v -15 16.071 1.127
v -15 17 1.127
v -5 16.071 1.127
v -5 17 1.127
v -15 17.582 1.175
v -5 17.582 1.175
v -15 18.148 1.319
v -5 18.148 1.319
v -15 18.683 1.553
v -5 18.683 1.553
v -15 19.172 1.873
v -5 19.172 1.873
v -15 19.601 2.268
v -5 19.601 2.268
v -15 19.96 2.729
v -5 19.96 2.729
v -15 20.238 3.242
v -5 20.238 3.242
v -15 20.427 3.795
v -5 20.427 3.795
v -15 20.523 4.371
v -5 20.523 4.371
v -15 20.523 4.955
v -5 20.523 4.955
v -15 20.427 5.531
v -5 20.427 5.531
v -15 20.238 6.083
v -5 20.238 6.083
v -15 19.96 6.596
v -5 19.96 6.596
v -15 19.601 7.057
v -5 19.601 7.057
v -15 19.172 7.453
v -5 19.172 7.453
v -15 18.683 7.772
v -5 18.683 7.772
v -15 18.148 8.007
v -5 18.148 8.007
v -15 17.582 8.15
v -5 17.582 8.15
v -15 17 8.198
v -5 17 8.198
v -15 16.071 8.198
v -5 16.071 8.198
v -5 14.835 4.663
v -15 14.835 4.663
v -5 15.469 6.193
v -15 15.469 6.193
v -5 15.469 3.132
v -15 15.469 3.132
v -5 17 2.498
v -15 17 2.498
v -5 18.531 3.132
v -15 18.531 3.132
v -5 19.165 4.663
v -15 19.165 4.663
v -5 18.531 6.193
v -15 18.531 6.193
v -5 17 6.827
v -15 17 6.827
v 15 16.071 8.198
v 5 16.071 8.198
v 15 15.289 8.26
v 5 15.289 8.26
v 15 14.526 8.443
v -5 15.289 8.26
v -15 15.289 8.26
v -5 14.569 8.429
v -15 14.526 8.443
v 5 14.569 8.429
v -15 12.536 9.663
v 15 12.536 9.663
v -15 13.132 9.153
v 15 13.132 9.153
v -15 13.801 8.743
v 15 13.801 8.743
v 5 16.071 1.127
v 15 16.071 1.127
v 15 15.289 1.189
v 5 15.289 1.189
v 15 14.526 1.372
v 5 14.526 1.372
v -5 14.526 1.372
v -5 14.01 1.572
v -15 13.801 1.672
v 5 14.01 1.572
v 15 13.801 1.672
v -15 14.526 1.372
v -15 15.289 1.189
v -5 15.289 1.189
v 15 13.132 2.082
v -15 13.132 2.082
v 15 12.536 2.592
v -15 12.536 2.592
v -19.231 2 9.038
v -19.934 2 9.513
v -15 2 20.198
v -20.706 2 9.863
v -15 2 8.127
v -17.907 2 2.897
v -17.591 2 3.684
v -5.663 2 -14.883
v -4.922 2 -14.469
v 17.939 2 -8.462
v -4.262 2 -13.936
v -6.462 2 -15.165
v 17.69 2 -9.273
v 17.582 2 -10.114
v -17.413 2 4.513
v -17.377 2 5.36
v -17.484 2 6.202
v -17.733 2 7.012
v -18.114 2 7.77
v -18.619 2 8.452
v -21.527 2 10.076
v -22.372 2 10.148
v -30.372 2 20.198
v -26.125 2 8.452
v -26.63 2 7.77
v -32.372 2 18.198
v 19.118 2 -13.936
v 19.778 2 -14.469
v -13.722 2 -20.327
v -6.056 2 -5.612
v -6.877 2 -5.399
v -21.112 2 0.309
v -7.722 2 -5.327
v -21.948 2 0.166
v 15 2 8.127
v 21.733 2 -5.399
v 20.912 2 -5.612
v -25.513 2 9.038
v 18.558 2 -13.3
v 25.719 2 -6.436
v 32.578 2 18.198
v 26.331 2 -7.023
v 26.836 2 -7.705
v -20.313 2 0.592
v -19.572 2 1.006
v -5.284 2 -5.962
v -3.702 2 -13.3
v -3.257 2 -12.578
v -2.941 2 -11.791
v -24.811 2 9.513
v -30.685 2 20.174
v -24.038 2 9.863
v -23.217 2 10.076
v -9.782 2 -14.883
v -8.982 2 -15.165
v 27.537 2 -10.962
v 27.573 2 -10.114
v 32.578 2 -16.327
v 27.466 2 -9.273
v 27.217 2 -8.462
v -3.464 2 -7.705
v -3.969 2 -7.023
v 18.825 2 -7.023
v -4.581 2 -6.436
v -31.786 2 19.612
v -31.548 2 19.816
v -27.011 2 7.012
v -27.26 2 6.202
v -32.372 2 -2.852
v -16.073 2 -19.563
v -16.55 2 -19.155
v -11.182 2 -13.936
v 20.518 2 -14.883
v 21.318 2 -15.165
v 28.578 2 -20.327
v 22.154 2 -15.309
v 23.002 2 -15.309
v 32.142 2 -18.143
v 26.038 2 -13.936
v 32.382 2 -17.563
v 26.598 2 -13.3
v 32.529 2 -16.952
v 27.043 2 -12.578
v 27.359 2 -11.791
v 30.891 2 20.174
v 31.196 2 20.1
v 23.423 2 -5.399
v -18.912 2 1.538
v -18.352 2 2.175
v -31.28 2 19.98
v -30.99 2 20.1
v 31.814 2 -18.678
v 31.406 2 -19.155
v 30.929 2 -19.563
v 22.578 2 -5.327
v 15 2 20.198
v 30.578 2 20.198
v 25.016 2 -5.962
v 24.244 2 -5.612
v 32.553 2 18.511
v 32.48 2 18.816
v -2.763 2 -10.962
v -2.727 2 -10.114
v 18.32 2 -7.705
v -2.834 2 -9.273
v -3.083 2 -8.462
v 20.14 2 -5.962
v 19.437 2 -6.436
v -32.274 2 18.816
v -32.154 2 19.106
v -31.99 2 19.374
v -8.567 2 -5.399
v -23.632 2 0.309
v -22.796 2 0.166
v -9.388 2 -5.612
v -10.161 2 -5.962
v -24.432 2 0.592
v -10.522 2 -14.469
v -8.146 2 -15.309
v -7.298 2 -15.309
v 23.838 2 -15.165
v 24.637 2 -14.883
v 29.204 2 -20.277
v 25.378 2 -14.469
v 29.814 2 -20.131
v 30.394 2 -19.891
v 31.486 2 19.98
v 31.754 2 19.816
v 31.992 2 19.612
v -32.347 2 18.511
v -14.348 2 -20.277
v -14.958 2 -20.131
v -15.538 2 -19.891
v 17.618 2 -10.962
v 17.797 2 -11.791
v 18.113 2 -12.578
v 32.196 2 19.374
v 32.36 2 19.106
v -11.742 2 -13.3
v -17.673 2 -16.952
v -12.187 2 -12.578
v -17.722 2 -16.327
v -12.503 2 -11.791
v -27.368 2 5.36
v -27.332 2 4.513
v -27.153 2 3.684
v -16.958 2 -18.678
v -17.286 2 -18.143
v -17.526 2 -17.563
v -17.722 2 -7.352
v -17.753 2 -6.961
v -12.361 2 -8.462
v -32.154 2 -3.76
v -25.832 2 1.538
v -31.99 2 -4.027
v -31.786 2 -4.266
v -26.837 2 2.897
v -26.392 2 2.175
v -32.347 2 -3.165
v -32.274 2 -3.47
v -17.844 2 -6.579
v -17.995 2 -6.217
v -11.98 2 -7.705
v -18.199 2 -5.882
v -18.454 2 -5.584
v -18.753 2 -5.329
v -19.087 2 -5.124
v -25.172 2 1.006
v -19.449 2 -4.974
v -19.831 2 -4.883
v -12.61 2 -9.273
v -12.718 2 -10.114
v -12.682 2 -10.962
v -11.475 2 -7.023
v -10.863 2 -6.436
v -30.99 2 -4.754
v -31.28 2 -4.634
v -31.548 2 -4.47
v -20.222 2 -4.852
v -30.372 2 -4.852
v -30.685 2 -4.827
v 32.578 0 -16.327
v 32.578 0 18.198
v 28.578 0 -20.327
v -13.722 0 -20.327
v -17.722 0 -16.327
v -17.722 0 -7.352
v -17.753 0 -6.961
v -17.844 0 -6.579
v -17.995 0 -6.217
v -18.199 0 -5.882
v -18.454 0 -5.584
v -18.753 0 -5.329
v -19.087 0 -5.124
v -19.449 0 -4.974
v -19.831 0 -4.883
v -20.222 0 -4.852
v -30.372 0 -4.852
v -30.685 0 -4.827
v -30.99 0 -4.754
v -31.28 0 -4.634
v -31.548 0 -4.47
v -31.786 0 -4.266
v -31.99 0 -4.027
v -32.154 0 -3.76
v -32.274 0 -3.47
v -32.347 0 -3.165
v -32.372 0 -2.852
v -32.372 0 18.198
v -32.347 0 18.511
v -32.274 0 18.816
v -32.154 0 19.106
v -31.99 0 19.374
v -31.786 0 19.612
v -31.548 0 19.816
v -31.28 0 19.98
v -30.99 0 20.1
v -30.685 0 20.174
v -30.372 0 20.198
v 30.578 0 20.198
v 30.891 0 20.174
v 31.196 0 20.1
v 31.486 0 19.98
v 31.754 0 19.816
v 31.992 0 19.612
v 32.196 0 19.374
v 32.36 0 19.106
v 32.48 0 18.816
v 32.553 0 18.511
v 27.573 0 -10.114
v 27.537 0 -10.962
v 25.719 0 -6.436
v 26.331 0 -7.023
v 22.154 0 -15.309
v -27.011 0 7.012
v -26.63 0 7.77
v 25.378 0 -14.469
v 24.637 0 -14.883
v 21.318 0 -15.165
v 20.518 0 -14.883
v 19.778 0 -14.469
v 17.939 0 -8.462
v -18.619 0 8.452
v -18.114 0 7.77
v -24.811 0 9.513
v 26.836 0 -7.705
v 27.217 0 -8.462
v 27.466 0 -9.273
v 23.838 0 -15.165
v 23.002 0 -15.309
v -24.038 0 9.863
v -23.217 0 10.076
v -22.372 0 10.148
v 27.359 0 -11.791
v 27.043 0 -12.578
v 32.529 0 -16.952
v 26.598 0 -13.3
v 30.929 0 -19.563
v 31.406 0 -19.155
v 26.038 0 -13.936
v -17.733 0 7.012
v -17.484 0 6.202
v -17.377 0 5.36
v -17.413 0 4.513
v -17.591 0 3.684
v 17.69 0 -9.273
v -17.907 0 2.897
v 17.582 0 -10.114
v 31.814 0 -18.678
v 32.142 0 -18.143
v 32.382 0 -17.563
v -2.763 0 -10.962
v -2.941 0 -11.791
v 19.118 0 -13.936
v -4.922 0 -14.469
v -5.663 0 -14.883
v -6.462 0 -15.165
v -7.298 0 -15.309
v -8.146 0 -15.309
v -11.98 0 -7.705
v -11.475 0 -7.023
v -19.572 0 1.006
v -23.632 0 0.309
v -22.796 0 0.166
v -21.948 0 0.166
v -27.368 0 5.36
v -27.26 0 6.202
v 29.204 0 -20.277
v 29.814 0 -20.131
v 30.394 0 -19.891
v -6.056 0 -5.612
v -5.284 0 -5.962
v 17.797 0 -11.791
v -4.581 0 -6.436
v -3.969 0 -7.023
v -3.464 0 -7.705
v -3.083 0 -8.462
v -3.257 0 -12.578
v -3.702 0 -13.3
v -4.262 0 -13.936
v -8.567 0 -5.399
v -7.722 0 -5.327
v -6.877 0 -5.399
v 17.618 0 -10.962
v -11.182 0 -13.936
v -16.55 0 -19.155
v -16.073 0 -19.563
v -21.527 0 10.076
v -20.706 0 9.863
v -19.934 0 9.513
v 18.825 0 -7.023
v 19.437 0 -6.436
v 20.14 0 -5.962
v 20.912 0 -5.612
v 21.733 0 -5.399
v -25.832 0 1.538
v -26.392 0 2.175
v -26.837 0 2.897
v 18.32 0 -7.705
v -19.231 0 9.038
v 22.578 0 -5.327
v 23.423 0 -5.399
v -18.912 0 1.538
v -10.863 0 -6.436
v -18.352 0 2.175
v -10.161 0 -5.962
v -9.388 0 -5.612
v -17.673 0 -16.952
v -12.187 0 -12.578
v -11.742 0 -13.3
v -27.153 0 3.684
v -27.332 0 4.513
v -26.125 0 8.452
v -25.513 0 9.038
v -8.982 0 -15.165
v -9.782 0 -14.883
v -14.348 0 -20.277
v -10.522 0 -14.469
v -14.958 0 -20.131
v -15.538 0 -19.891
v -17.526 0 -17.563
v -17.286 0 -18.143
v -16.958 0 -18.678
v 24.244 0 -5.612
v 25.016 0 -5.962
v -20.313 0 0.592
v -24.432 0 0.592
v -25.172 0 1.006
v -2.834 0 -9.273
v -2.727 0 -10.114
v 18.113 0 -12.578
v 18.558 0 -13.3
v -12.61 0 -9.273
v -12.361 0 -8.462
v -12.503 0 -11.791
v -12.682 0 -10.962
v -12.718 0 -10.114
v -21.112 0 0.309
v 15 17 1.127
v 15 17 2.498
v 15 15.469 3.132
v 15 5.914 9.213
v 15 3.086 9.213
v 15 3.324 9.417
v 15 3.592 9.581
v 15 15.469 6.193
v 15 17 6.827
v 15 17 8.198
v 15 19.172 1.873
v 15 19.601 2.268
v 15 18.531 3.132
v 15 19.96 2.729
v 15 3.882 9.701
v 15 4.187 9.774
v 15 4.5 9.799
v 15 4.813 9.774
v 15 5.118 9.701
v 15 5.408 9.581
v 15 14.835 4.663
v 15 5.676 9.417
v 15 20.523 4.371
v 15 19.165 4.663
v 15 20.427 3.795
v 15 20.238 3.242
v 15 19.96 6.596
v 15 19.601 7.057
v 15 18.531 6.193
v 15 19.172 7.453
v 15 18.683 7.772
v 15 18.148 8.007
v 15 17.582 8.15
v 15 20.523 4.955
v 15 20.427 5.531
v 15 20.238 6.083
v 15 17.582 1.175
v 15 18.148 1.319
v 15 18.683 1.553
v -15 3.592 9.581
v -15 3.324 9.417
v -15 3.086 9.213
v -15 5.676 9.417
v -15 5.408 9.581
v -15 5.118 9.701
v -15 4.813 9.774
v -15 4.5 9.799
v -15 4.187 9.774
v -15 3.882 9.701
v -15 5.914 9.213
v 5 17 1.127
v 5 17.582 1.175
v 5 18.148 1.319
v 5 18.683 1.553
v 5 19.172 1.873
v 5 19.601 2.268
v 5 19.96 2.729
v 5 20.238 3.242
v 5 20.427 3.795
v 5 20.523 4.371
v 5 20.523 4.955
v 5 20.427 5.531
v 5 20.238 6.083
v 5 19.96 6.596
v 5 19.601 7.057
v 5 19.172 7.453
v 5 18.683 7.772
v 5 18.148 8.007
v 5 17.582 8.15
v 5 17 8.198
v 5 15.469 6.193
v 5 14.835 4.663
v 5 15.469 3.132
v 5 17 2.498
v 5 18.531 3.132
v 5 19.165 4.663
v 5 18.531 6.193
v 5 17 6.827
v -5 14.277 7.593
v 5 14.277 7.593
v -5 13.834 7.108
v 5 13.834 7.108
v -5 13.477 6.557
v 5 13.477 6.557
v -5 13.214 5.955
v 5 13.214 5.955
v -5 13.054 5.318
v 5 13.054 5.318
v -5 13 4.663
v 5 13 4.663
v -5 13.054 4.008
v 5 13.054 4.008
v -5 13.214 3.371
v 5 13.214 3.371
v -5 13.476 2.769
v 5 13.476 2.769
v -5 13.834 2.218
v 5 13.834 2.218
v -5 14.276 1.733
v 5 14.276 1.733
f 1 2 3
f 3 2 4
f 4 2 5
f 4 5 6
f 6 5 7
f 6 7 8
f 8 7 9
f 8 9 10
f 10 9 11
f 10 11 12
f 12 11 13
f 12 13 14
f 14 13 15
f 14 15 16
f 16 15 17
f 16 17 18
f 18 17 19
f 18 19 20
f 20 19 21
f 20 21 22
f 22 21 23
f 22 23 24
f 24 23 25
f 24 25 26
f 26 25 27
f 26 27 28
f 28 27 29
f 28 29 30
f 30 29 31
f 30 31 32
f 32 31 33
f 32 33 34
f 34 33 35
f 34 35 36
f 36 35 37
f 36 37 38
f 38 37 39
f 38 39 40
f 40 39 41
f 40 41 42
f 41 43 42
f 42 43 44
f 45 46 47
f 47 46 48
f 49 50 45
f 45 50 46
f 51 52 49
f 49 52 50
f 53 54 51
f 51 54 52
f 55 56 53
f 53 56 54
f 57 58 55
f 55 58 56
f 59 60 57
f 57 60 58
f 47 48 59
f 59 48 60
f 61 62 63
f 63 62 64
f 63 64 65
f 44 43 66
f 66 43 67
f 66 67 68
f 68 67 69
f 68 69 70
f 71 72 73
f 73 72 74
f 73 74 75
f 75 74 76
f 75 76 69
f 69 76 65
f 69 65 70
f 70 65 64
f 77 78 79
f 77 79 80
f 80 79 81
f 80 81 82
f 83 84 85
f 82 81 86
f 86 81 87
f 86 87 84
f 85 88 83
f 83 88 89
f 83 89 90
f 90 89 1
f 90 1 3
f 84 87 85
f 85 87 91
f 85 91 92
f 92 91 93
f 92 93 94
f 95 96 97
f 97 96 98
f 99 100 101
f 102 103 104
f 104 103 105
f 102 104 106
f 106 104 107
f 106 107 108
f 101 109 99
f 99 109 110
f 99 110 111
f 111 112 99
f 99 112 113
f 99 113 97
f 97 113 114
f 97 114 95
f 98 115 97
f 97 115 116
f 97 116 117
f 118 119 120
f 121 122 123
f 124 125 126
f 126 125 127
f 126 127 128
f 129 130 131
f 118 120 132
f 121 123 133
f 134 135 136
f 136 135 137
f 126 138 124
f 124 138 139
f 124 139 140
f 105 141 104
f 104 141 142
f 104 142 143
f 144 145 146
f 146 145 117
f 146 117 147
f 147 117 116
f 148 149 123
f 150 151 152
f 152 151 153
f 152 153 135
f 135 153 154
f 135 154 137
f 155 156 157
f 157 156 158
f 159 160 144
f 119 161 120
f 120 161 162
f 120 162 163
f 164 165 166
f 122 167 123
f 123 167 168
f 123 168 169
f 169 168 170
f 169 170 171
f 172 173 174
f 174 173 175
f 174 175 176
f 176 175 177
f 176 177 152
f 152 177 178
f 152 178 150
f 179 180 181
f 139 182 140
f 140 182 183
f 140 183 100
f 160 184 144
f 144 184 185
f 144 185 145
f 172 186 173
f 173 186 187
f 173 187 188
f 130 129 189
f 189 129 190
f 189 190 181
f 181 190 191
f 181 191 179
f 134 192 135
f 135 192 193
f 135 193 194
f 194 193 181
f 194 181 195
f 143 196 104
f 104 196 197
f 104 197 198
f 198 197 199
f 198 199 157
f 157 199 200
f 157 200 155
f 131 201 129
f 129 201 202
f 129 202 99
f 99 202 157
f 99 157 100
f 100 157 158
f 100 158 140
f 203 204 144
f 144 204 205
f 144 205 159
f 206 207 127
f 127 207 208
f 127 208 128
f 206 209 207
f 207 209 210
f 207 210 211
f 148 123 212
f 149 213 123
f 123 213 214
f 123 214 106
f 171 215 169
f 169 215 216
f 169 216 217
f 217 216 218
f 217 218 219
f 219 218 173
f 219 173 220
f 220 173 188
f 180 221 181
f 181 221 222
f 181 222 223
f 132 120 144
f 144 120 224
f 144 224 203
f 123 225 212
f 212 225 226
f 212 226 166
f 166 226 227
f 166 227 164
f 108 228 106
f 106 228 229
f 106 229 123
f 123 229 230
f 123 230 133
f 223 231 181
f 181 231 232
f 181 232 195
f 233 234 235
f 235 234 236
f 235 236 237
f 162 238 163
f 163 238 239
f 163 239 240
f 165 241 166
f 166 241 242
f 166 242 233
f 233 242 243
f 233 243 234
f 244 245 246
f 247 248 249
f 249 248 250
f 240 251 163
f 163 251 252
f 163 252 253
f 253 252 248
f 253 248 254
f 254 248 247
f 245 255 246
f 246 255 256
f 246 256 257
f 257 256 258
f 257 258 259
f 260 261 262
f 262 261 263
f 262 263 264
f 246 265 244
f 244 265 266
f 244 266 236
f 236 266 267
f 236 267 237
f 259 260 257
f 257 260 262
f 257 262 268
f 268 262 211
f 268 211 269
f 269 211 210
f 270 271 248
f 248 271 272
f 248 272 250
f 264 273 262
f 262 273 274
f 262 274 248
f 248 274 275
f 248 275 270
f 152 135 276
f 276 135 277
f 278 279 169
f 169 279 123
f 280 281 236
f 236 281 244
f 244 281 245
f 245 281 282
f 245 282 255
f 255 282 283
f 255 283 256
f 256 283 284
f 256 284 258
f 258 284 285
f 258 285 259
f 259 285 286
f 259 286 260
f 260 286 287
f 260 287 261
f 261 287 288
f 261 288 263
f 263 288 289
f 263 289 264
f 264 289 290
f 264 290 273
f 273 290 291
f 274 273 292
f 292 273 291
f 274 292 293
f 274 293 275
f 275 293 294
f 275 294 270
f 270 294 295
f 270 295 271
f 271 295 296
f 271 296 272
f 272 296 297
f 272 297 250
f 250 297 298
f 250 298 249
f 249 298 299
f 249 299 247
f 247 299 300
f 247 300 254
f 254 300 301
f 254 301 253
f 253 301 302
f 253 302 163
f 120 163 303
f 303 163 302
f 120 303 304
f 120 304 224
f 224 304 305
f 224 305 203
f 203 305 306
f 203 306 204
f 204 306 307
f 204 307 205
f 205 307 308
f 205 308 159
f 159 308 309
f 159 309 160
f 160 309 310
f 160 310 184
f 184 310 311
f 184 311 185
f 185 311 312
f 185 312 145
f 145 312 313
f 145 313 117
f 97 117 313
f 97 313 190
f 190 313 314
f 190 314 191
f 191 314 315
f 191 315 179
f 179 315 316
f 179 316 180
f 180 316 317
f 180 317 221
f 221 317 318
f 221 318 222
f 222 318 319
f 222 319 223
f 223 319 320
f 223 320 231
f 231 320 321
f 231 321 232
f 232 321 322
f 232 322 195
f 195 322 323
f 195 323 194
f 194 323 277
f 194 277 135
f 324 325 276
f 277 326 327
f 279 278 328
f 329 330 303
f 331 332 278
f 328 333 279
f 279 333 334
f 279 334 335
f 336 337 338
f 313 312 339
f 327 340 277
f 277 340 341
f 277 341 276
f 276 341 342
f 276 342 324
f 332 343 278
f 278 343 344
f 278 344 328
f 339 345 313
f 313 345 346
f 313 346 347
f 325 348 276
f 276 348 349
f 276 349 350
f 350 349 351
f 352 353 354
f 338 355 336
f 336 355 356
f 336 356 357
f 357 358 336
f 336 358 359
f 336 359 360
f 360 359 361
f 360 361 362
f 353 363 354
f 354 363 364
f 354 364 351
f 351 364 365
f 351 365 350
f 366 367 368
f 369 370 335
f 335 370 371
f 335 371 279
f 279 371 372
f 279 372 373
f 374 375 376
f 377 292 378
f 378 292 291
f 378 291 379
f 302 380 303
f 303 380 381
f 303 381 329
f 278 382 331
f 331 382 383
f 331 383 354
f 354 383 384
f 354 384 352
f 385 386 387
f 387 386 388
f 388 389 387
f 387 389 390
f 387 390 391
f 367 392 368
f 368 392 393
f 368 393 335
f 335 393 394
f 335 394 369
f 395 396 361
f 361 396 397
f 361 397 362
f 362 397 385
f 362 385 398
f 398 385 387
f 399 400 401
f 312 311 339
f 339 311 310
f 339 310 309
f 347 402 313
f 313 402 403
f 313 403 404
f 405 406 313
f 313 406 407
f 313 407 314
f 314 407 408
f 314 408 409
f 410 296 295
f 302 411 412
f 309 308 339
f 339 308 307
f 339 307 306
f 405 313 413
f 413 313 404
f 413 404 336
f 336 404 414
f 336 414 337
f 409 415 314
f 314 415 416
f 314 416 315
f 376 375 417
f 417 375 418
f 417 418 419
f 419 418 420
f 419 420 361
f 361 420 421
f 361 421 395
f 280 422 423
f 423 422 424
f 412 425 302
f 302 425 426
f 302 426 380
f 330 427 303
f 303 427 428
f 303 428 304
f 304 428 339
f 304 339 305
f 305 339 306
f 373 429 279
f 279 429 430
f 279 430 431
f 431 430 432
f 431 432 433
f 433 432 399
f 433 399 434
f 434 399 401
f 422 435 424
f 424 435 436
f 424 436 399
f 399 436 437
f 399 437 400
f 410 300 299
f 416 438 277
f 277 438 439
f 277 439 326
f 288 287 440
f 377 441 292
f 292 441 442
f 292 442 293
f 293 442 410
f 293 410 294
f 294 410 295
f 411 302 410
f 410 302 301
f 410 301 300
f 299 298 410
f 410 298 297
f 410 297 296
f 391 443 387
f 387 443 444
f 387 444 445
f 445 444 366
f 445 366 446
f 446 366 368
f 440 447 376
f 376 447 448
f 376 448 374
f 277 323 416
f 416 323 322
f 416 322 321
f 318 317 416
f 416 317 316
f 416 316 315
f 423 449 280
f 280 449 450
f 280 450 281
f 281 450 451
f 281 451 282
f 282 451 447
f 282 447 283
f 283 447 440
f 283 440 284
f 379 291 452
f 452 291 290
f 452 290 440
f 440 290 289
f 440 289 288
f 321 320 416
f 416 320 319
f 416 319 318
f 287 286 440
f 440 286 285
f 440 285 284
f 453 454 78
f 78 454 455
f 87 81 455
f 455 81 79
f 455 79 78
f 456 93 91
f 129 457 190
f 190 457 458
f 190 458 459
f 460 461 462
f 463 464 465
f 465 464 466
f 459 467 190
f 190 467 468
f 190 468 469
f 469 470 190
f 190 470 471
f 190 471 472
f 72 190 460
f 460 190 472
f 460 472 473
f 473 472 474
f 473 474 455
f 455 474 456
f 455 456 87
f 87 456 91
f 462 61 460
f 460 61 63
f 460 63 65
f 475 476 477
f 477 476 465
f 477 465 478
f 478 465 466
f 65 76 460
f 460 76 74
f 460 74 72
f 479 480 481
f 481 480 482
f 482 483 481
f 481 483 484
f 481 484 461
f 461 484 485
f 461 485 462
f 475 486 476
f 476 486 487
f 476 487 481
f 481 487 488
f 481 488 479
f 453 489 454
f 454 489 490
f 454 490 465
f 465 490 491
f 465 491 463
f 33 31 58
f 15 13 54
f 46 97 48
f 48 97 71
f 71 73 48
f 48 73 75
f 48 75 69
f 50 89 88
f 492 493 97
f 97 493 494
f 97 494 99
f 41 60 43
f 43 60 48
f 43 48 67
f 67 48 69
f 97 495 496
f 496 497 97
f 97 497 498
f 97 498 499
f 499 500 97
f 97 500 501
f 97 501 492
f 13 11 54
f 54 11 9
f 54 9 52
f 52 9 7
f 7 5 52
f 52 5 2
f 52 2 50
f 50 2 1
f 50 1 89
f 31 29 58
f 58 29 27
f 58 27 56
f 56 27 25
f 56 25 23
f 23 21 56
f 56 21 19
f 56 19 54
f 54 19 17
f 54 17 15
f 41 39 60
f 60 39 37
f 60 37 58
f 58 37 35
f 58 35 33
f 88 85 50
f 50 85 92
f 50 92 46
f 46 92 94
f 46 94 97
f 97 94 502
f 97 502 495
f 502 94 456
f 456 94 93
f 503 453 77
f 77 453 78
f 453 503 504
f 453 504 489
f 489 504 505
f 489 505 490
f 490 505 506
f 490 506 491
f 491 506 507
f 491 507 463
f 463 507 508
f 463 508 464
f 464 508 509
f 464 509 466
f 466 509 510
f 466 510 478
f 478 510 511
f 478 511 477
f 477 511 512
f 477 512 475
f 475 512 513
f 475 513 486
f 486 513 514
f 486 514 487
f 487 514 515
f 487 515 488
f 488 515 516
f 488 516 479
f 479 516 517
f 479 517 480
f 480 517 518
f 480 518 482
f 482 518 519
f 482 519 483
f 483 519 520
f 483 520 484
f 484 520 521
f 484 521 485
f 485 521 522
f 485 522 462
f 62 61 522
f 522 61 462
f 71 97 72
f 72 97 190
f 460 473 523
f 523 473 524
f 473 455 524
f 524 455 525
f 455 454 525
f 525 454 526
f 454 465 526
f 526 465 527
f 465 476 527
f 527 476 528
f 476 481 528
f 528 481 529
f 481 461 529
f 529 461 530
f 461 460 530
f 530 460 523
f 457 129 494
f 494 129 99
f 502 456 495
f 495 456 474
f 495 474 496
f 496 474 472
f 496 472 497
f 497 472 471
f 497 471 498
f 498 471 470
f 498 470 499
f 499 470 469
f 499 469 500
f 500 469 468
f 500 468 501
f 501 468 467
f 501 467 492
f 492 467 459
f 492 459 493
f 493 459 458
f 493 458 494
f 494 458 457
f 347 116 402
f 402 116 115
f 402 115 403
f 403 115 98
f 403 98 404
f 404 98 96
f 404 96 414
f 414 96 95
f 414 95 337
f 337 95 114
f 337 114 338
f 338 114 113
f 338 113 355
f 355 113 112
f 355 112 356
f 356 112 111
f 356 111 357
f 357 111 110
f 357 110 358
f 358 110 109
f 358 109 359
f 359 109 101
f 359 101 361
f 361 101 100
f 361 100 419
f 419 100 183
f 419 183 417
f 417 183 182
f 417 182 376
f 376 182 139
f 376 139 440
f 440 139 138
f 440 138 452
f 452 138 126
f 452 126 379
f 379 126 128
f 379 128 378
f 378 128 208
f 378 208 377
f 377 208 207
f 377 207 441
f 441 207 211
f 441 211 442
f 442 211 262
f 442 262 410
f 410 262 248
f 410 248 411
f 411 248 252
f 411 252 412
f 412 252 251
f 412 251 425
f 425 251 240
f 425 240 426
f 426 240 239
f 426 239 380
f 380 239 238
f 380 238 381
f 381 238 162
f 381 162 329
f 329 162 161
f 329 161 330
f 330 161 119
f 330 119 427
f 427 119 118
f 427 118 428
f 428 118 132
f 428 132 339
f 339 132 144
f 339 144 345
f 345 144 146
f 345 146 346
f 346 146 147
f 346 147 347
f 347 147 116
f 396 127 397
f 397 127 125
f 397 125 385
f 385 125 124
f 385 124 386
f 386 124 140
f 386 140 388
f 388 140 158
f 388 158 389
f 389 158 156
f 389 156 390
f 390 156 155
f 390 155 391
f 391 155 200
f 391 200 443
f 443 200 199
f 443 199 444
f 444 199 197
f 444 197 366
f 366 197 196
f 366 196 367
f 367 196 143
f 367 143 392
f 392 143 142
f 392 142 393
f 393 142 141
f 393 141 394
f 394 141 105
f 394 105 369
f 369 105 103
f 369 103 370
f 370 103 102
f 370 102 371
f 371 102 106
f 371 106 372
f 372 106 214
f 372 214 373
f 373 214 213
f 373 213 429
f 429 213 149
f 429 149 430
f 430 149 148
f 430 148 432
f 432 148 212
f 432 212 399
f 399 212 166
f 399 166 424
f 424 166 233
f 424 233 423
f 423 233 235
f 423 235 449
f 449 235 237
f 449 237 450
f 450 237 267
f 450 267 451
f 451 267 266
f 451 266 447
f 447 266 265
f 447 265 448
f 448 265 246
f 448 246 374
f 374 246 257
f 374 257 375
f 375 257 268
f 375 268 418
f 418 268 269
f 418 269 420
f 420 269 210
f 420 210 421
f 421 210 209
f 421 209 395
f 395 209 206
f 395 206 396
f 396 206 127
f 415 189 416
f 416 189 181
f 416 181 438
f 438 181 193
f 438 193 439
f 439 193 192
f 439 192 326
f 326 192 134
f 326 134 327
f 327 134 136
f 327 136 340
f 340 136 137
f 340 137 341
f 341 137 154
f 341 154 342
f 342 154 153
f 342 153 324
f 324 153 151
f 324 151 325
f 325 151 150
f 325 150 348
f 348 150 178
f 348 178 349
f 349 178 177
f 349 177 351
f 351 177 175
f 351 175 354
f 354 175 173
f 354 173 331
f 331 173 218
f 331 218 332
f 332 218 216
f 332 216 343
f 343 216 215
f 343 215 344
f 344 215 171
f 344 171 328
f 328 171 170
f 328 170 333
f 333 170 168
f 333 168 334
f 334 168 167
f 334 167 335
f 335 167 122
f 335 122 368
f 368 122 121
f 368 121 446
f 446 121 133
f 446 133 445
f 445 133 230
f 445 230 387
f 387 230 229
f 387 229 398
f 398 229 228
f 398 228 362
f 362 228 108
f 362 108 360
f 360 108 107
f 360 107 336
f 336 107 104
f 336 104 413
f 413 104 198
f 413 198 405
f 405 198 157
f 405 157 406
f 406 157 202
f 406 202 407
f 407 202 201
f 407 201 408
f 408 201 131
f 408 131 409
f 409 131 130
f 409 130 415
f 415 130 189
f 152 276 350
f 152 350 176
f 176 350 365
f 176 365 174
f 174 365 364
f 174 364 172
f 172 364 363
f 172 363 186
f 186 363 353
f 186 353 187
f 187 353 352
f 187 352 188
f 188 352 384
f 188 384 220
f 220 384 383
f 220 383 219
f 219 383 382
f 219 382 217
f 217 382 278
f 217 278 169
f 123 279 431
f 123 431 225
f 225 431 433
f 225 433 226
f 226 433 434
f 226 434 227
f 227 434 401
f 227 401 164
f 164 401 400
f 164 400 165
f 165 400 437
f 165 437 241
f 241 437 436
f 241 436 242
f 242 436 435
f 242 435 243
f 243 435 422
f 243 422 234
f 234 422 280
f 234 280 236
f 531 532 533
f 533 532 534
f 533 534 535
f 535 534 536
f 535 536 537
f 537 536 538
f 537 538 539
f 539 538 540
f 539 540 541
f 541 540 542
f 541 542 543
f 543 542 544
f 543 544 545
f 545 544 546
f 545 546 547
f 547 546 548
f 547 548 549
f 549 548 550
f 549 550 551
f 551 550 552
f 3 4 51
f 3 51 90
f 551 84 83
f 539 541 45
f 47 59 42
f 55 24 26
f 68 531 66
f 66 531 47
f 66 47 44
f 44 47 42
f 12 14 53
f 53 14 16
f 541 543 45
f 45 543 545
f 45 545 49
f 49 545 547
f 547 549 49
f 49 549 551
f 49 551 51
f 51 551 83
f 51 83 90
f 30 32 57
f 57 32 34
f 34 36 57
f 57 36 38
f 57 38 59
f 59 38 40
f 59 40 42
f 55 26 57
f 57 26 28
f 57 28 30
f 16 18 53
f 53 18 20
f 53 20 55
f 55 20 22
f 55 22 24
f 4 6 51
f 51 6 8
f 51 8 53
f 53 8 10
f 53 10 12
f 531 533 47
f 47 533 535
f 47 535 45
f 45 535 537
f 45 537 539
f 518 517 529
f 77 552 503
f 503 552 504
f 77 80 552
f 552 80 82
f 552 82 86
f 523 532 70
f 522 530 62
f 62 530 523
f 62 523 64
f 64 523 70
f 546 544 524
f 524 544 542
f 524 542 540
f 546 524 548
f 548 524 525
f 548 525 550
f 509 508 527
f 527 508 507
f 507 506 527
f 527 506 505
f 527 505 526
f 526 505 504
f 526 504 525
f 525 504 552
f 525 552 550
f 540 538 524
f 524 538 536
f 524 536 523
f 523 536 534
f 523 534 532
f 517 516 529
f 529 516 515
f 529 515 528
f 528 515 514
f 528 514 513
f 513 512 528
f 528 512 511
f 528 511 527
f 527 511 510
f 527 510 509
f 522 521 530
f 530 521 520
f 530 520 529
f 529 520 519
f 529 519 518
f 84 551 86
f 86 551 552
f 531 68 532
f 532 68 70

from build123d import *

# Parameters (mm, degrees)
BOSS_EXTRUDE2_DEPTH = 2
BOSS_EXTRUDE3_DEPTH = 15
CHAMFER1_SIZE       = 5
CHAMFER1_SIZE2      = 3.535533906
FILLET2_R           = 5
FILLET3_R           = 2
SKETCH6_R           = 5
CUT_EXTRUDE5_DEPTH  = 43.63874873
FILLET4_R           = 4
SKETCH4_R           = 4
CUT_EXTRUDE6_DEPTH  = 5


with BuildPart() as part:
    # Sketch1 → Boss-Extrude2 (new body)
    with BuildSketch(Plane(origin=(0, 0, 0), x_dir=(1, 0, 0), z_dir=(0, 1, 0))):
        with BuildLine():
            Line((-30.372025328, 4.851856012), (-20.222025328, 4.851856012))
            ThreePointArc((-20.222025328, 4.851856012), (-18.454258375, 5.584089059), (-17.722025328, 7.351856012))
            Line((-17.722025328, 7.351856012), (-17.722025328, 20.326643656))
            Line((-17.722025328, 20.326643656), (32.577974672, 20.326643656))
            Line((32.577974672, 20.326643656), (32.577974672, -18.198143988))
            ThreePointArc((32.577974672, -18.198143988), (31.992188234, -19.612357551), (30.577974672, -20.198143988))
            Line((30.577974672, -20.198143988), (-30.372025328, -20.198143988))
            ThreePointArc((-30.372025328, -20.198143988), (-31.78623889, -19.612357551), (-32.372025328, -18.198143988))
            Line((-32.372025328, -18.198143988), (-32.372025328, 2.851856012))
            ThreePointArc((-32.372025328, 2.851856012), (-31.78623889, 4.266069574), (-30.372025328, 4.851856012))
        make_face()
    extrude(amount=BOSS_EXTRUDE2_DEPTH)

    # Sketch2 → Boss-Extrude3 (add, symmetric)
    with BuildSketch(Plane(origin=(0, 0, 0), x_dir=(0, 0, -1), z_dir=(1, 0, 0))):
        with BuildLine():
            Line((-20.198143988, 2), (-8.198143988, 14))
            Line((-8.198143988, 14), (-8.198143988, 17))
            ThreePointArc((-8.198143988, 17), (-4.662610082, 20.535533906), (-1.127076177, 17))
            Line((-1.127076177, 17), (-1.127076177, 14))
            Line((-1.127076177, 14), (-13.127076177, 2))
            Line((-13.127076177, 2), (-20.198143988, 2))
        make_face()
        Polygon((-4.662610082, 14.835215599), (-3.131876353, 15.469266271), (-2.497825682, 17), (-3.131876353, 18.530733729), (-4.662610082, 19.164784401), (-6.193343812, 18.530733729), (-6.827394483, 17), (-6.193343812, 15.469266271), align=None, mode=Mode.SUBTRACT)
    extrude(amount=BOSS_EXTRUDE3_DEPTH, both=True)

    # Chamfer1
    chamfer1_edges = [part.edges().sort_by_distance(p)[0] for p in [
        (0, 2, 13.127076177),
    ]]
    chamfer1_side = [part.faces().sort_by_distance(p)[0] for p in [
        (2.715334419, 2, -0.404703372),
    ]]
    chamfer(chamfer1_edges, length=CHAMFER1_SIZE, length2=CHAMFER1_SIZE2, reference=chamfer1_side[0])

    # Fillet2
    fillet2_edges = [part.edges().sort_by_distance(p)[0] for p in [
        (0, 14, 1.127076177),
        (0, 14, 8.198143988),
    ]]
    fillet(fillet2_edges, radius=FILLET2_R)

    # Fillet3
    fillet3_edges = [part.edges().sort_by_distance(p)[0] for p in [
        (0, 4.5, 10.627076177),
    ]]
    fillet(fillet3_edges, radius=FILLET3_R)

    # Sketch6 → Cut-Extrude5 (cut, through all)
    with BuildSketch(Plane(origin=(0, 2, 0), x_dir=(1, 0, 0), z_dir=(0, 1, 0))):
        with Locations(Location((22.577974672, 10.326643656, 0), (0, 0, 270))):
            Circle(SKETCH6_R)
        with Locations(Location((-7.722025328, 10.326643656, 0), (0, 0, 270))):
            Circle(SKETCH6_R)
        with Locations(Location((-22.372025328, -5.148143988, 0), (0, 0, 270))):
            Circle(SKETCH6_R)
    extrude(amount=-CUT_EXTRUDE5_DEPTH, mode=Mode.SUBTRACT)

    # Fillet4
    fillet4_edges = [part.edges().sort_by_distance(p)[0] for p in [
        (-17.722025328, 1, -20.326643656),
        (32.577974672, 1, -20.326643656),
    ]]
    fillet(fillet4_edges, radius=FILLET4_R)

    # Sketch4 → Cut-Extrude6 (cut, symmetric)
    with BuildSketch(Plane(origin=(0, 0, 0), x_dir=(0, 0, -1), z_dir=(1, 0, 0))):
        with Locations((-4.662610082, 17)):
            Circle(SKETCH4_R)
    extrude(amount=CUT_EXTRUDE6_DEPTH, both=True, mode=Mode.SUBTRACT)

    # Chamfer2
    # the kernel refuses this chamfer: 1, 0.7919938 mm, written as the material it takes off along each edge
    with BuildSketch(Plane(origin=(-5, 14.878966184, 1.271265873), x_dir=(0, -0.9451293826533955, 0.3266962657350272), z_dir=(1, 0, 0))) as chamfer2_piece_1:
        with BuildLine():
            Line((0.919369635, 0), (0.720278223, -0.239594389))
            ThreePointArc((0.720278223, -0.239594389), (0.358867912, -0.100362012), (0, 0))
            ThreePointArc((0, 0), (0.472481659, 0.021159479), (0.919369635, 0))
        make_face()
    extrude(amount=10, mode=Mode.SUBTRACT)

    # Chamfer3
    # the kernel refuses this chamfer: 1, 0.717753161 mm, written as the material it takes off along each edge
    with BuildSketch(Plane(origin=(5, 15.260052087, 8.264357056), x_dir=(0, -0.8256881187536859, -0.5641268745140575), z_dir=(-1, 0, 0))) as chamfer3_piece_1:
        with BuildLine():
            Line((1.190375888, 0), (0.477865365, 0.526129749))
            ThreePointArc((0.477865365, 0.526129749), (0.246923946, 0.253056093), (0, 0))
            ThreePointArc((0, 0), (0.611506956, 0.044495651), (1.190375888, 0))
        make_face()
    extrude(amount=10, mode=Mode.SUBTRACT)


solid = part.part
